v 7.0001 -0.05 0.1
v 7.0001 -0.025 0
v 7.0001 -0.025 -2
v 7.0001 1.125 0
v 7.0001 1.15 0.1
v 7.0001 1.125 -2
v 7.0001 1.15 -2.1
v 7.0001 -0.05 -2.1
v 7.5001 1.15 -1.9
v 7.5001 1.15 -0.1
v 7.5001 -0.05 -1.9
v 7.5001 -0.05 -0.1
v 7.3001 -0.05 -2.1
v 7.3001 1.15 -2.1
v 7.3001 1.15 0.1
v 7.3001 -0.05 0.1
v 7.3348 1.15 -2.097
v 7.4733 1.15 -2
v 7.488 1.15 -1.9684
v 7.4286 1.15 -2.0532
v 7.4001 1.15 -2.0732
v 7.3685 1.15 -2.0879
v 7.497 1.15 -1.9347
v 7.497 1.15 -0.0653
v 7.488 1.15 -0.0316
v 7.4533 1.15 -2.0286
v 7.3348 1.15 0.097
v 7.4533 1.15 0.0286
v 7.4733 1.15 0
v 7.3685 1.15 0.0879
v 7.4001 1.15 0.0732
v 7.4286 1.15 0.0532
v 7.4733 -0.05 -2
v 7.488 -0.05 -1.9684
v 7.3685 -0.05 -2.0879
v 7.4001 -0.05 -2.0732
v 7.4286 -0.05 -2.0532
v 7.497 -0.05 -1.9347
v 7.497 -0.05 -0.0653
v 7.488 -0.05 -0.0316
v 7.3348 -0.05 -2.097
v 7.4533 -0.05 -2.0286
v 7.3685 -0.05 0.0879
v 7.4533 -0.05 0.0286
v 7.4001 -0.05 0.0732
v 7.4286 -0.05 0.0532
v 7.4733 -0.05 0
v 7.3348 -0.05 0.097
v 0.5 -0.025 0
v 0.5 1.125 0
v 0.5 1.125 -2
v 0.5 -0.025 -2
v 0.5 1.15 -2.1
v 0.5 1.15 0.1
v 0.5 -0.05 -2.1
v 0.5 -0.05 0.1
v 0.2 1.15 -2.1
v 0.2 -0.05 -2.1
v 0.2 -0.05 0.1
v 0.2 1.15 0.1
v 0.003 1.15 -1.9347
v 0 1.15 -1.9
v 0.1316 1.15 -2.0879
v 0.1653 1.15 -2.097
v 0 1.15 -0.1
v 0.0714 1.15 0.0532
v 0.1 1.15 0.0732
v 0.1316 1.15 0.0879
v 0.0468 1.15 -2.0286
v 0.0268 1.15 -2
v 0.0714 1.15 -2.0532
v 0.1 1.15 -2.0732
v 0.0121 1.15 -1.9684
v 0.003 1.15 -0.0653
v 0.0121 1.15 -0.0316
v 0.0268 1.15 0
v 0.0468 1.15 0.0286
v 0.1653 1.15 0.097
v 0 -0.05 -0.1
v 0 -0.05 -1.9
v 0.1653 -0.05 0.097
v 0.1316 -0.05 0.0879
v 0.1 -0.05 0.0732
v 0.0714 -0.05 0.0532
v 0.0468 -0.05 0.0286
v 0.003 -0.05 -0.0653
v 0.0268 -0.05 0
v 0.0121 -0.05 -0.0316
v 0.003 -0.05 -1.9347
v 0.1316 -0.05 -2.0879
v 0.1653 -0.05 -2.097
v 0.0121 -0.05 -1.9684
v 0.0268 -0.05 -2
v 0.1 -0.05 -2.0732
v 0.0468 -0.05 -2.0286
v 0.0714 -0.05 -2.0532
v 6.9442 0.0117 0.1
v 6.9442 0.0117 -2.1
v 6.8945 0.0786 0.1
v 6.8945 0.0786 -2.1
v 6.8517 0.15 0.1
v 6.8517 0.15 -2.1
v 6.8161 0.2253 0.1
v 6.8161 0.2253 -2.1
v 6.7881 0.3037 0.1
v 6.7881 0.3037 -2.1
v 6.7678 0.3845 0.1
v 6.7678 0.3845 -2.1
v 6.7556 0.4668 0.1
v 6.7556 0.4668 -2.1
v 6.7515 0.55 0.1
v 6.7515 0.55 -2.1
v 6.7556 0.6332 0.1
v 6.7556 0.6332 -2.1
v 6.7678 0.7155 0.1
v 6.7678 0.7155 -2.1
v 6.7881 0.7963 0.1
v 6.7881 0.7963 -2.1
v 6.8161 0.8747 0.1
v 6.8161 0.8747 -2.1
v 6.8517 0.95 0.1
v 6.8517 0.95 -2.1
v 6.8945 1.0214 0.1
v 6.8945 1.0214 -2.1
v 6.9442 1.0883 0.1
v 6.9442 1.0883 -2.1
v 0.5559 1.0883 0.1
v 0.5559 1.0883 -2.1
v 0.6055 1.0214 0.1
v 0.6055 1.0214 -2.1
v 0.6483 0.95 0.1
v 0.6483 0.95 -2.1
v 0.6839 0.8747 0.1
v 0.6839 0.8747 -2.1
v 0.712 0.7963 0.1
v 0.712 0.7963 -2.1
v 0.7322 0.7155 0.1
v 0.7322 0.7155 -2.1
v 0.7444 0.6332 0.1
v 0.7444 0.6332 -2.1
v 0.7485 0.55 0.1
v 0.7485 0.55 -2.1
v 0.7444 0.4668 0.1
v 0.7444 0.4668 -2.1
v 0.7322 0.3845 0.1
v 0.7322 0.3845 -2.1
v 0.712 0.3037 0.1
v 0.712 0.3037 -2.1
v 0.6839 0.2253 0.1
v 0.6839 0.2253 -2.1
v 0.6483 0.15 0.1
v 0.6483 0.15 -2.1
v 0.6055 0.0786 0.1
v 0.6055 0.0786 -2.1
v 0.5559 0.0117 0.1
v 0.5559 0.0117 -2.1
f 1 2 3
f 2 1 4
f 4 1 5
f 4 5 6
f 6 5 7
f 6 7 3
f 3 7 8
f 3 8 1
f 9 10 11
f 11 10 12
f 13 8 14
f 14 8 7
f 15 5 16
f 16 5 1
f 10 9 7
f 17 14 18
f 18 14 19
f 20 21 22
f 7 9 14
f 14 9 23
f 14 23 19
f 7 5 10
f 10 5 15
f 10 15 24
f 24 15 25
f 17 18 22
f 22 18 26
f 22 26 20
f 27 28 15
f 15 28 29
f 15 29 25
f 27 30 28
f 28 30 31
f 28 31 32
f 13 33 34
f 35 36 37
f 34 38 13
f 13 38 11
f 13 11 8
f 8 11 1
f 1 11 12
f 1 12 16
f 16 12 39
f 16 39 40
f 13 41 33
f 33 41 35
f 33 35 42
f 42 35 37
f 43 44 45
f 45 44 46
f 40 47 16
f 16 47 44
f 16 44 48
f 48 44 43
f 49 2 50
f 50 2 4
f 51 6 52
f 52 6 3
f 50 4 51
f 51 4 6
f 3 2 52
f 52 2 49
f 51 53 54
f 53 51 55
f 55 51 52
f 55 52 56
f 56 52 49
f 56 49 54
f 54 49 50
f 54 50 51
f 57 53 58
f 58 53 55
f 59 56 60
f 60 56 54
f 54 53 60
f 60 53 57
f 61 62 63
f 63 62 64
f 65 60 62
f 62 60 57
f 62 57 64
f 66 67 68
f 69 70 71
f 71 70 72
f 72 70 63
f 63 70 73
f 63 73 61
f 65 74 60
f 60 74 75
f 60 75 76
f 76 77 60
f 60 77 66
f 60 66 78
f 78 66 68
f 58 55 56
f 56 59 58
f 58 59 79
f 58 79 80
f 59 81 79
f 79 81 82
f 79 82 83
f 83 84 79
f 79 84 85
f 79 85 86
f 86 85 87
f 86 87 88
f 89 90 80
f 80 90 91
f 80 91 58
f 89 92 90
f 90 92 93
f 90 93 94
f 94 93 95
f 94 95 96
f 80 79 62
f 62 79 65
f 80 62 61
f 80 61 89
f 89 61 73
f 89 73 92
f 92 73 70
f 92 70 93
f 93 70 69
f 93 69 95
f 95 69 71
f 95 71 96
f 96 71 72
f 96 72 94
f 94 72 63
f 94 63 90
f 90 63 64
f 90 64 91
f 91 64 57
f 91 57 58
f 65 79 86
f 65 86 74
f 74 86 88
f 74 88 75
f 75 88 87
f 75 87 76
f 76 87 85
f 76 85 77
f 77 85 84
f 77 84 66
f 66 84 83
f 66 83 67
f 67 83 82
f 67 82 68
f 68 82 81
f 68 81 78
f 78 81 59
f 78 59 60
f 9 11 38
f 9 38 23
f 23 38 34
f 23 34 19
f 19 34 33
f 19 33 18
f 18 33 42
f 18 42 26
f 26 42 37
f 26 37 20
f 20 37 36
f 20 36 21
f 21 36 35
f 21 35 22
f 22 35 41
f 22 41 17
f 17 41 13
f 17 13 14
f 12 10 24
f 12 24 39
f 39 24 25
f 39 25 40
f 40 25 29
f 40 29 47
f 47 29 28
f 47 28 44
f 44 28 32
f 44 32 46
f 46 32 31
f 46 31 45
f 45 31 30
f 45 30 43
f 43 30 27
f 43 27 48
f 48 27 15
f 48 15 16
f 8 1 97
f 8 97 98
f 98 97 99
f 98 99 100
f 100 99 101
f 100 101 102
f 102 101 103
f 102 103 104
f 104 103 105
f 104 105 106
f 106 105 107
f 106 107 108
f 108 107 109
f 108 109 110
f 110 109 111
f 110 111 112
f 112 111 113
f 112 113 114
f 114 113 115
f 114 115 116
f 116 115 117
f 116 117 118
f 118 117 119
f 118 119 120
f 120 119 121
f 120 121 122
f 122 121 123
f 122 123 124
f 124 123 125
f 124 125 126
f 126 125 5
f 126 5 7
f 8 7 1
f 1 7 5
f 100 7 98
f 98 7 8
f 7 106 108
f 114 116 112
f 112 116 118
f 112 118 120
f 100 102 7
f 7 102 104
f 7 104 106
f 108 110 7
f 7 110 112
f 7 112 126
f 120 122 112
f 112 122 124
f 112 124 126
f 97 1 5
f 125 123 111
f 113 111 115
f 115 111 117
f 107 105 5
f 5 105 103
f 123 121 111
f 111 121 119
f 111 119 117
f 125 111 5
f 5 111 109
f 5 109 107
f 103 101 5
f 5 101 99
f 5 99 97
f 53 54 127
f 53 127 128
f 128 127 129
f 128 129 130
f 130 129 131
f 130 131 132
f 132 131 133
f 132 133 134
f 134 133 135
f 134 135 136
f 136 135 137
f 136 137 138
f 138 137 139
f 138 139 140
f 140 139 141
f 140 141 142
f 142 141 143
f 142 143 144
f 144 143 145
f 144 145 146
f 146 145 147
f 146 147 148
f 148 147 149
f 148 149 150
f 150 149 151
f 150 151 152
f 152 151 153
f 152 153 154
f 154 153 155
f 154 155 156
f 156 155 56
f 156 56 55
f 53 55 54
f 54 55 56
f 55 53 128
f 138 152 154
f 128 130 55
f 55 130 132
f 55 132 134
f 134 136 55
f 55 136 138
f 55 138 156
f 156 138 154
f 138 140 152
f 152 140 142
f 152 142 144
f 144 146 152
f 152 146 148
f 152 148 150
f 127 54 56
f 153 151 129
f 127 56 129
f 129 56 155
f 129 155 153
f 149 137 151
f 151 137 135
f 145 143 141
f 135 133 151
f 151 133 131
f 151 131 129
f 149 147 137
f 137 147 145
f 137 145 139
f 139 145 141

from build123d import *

# Parameters (mm, degrees)
BOSS_EXTRUDE1_START   = -0.025
SKETCH1_W             = 7.5
SKETCH1_H             = 2
BOSS_EXTRUDE1_DEPTH   = 1.15
BOSS_EXTRUDE2_START   = -0.05
SKETCH2_W             = 0.5
SKETCH2_H             = 2.2
BOSS_EXTRUDE2_DEPTH   = 1.2
FILLET1_R             = 0.2
BOSS_EXTRUDE3_DEPTH   = 2.2
BOSS_EXTRUDE3_2_DEPTH = 2.2


with BuildPart() as part:
    # Sketch1 → Boss-Extrude1 (new body)
    with BuildSketch(Plane(origin=(0, 0, 0), x_dir=(1, 0, 0), z_dir=(0, 1, 0)).offset(BOSS_EXTRUDE1_START)):
        with Locations((3.75, 1)):
            Rectangle(SKETCH1_W, SKETCH1_H)
    extrude(amount=BOSS_EXTRUDE1_DEPTH)

    # Sketch2 → Boss-Extrude2 (add)
    with BuildSketch(Plane(origin=(0, 0, 0), x_dir=(1, 0, 0), z_dir=(0, 1, 0)).offset(BOSS_EXTRUDE2_START)):
        with Locations((7.250073079, 1)):
            Rectangle(SKETCH2_W, SKETCH2_H)
        with Locations((0.25, 1)):
            Rectangle(SKETCH2_W, SKETCH2_H)
    extrude(amount=BOSS_EXTRUDE2_DEPTH)

    # Fillet1
    fillet1_edges = [part.edges().sort_by_distance(p)[0] for p in [
        (7.500073079, 0.55, 0.1),
        (7.500073079, 0.55, -2.1),
        (0, 0.55, -2.1),
        (0, 0.55, 0.1),
    ]]
    fillet(fillet1_edges, radius=FILLET1_R)


with BuildPart() as body_2:
    # Sketch3 → Boss-Extrude3 (new body)
    with BuildSketch(Plane.XY.offset(0.1)):
        with BuildLine():
            Line((7.000073079, 1.15), (7.000073079, -0.05))
            ThreePointArc((7.000073079, -0.05), (6.751544941, 0.55), (7.000073079, 1.15))
        make_face()
    extrude(amount=-BOSS_EXTRUDE3_DEPTH)


with BuildPart() as body_3:
    # Sketch3 → Boss-Extrude3 2 (new body)
    with BuildSketch(Plane.XY.offset(0.1)):
        with BuildLine():
            Line((0.5, 1.15), (0.5, -0.05))
            ThreePointArc((0.5, -0.05), (0.748528137, 0.55), (0.5, 1.15))
        make_face()
    extrude(amount=-BOSS_EXTRUDE3_2_DEPTH)


solid = Compound([part.part, body_2.part, body_3.part])
